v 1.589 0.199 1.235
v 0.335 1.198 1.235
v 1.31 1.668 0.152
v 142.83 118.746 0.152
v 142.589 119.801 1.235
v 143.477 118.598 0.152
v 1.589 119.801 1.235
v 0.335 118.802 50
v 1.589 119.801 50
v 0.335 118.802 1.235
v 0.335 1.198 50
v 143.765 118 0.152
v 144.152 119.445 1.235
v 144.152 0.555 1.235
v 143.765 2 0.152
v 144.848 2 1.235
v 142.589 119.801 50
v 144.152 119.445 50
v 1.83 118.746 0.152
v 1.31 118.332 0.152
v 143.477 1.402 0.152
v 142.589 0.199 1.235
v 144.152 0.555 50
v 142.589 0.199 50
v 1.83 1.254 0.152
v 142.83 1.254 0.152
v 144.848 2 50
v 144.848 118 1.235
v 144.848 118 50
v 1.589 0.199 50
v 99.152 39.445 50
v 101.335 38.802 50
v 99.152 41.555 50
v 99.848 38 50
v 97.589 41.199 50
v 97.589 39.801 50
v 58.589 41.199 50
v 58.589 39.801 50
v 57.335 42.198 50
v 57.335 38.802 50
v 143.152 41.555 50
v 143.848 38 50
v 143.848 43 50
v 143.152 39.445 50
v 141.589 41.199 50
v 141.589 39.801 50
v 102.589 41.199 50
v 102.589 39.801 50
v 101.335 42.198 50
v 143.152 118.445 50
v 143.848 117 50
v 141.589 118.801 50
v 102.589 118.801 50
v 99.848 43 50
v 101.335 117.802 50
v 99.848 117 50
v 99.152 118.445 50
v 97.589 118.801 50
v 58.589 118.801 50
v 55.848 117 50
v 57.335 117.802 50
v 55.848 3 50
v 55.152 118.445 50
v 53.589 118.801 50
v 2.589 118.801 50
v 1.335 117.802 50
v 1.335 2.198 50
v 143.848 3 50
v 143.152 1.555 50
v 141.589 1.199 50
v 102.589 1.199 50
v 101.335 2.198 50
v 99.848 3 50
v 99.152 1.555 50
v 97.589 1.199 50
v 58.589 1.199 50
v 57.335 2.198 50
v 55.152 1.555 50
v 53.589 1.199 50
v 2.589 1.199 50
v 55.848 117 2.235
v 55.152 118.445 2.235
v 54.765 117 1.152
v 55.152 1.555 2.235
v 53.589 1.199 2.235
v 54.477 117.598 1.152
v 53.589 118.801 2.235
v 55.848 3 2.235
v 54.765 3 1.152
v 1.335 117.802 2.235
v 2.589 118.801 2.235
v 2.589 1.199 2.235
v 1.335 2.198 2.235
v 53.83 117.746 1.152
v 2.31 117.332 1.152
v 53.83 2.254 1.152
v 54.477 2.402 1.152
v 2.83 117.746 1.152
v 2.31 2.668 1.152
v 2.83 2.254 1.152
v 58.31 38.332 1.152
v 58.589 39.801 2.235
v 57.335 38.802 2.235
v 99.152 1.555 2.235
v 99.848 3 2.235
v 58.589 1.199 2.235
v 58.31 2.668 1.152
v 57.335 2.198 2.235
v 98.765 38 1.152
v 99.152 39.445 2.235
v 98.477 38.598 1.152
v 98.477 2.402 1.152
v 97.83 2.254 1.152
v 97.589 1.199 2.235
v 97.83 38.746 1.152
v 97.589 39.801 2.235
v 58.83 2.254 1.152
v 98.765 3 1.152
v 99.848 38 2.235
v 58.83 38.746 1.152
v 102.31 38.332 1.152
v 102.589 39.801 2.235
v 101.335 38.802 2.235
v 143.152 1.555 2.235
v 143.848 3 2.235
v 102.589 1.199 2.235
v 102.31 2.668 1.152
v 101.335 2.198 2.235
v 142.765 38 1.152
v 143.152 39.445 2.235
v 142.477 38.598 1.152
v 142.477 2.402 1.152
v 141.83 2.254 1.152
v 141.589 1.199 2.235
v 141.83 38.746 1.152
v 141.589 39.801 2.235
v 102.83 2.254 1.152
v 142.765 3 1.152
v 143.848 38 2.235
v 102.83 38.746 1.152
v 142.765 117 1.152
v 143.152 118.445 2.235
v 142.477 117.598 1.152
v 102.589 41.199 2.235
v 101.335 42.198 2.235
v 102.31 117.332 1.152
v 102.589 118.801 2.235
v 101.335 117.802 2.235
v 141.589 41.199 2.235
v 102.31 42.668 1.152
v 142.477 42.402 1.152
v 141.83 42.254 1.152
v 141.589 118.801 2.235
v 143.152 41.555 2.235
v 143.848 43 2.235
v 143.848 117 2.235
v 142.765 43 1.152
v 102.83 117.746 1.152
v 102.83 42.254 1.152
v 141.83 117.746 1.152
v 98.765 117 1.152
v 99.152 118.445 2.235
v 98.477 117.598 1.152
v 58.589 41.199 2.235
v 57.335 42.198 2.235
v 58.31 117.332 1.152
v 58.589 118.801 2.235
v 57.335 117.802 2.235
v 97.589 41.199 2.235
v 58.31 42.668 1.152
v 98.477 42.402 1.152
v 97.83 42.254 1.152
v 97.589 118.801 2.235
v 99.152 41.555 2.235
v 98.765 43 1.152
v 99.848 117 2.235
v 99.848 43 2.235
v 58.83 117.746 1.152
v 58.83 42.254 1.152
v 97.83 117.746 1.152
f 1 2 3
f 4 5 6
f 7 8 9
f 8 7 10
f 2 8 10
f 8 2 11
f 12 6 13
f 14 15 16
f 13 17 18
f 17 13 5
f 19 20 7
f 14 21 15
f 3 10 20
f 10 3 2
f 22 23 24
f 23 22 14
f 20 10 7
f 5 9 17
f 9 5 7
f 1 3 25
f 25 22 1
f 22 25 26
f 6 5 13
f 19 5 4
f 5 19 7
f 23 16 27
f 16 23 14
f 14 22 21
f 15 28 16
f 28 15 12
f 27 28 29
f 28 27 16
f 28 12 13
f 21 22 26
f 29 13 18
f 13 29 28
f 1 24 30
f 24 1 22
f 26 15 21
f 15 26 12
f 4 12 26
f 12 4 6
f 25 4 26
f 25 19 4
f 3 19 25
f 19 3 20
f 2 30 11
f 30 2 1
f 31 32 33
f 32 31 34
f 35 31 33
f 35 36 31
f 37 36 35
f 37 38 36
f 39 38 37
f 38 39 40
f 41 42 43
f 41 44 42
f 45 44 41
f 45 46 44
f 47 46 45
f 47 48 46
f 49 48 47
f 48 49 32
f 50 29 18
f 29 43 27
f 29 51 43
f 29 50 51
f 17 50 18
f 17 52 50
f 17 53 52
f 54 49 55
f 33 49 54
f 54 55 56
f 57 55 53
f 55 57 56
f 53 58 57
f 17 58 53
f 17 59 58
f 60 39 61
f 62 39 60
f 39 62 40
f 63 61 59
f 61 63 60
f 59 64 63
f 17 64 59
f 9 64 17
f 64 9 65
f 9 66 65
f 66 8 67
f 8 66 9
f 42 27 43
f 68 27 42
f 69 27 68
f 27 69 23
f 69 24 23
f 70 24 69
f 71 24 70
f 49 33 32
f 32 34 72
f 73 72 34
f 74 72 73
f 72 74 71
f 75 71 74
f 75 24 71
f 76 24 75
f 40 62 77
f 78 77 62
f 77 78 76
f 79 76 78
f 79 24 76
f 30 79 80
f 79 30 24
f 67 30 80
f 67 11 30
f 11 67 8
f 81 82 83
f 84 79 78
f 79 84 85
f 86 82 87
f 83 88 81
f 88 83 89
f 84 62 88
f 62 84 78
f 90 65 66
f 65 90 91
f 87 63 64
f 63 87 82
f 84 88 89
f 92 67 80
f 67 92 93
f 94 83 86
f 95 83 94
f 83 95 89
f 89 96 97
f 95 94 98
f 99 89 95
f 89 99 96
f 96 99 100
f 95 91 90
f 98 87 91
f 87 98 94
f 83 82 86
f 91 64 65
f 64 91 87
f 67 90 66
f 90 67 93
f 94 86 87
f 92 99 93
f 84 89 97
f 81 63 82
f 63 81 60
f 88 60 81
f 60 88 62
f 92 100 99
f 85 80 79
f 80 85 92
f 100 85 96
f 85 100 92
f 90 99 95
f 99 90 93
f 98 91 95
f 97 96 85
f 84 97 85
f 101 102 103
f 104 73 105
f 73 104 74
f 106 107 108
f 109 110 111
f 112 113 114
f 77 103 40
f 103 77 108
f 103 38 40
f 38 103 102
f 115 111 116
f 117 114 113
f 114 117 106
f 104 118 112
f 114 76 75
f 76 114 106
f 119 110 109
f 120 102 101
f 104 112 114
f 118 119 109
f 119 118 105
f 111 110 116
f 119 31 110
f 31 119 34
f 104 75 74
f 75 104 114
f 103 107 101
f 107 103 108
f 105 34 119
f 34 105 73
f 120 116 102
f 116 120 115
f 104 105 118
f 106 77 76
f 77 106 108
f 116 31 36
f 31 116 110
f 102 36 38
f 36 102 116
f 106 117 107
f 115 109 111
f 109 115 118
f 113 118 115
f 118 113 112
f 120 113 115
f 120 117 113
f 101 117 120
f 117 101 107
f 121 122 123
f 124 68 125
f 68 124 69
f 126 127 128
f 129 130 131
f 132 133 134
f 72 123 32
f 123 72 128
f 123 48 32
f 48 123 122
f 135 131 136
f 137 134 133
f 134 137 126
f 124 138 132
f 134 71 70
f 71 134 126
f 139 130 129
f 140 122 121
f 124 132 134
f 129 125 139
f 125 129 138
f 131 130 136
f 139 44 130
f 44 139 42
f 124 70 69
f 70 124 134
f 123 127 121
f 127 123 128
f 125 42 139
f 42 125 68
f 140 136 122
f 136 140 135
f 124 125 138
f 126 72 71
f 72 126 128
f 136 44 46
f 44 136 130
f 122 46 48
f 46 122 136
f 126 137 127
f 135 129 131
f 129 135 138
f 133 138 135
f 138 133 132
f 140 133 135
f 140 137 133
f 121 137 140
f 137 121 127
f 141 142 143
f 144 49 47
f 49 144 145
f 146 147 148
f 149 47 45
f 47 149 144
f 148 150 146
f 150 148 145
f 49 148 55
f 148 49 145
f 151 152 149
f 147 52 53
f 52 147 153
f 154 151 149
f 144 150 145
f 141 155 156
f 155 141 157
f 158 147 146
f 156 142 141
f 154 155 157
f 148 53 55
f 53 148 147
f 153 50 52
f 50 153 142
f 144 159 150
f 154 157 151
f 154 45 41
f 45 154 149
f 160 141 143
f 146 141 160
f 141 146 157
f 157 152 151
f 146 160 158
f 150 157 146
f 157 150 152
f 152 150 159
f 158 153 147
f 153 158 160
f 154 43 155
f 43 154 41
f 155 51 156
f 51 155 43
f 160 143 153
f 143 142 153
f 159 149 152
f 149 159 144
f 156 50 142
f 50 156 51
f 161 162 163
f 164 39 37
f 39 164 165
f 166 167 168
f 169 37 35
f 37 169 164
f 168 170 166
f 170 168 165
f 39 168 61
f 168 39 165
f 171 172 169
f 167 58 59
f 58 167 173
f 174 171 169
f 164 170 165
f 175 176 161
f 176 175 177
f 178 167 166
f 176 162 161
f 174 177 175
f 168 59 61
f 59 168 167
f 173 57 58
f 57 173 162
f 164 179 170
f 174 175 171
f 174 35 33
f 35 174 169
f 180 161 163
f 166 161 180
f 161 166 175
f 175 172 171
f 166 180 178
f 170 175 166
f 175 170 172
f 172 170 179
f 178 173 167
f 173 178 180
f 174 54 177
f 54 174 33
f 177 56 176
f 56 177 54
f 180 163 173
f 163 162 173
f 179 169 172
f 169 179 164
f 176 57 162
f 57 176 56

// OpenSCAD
// file: ../utility/round-bottom-box.scad
module spheres(width,length,height,radius) {
  translate([radius,radius,radius]) sphere(radius);
  translate([width-radius, length-radius, radius]) sphere(radius);
  translate([width-radius, radius, radius]) sphere(radius);
  translate([radius, length-radius, radius]) sphere(radius);
}

module slicer(width,length,height) {
  translate([0,0,height]) cube([width, length, height]); 
}

module round_bottom_box(width, length, height,radius) {
  difference() {
    hull() {
      spheres(width,length,height,radius);
      translate([0,0,height]) spheres(width,length,height,radius);
    }
    slicer(width, length, height);
  }
}
// main file
use <../utility/round-bottom-box.scad>

alex_drawer_width = 290;

radius = 2;
width = alex_drawer_width/2;
length = 120;
height = 50;
wall = 1;

// +-------+------+------+
// | large | sm_1 | sm_2 | 
// |       |      |      |
// |       +-------------+
// |       | med  | med  |
// |       |      |      |
// |       |      |      |
// +-------+------+------+

large_width = 55;
large_length = length - 2*wall;

small_1_width = 45 - 2*wall;
small_length = 40 - wall;

medium_1_width = small_1_width;
medium_length = length - 2*wall - small_length - wall;

small_2_width = width - large_width - small_1_width - 4*wall;

medium_2_width = small_2_width;

second_column_x = wall + large_width + wall;
third_column_x = wall + large_width + wall + small_1_width + wall;

second_row_y = wall + small_length + wall;

module box() {
  difference() {
    round_bottom_box(width,length,height,radius);
    large();
    small_1();
    medium_1();
    small_2();
    medium_2();
  }
}

module large() {
  translate([wall, wall ,wall]) 
    round_bottom_box(large_width, large_length, height, radius);
}

module medium_1() {
  translate([second_column_x, second_row_y, wall])
    round_bottom_box(medium_1_width, medium_length, height, radius);
}

module small_1() {
  translate([second_column_x, wall, wall])
    round_bottom_box(small_1_width, small_length, height, radius);
}

module small_2() {
  translate([wall + large_width + wall + small_1_width + wall, wall, wall])
    round_bottom_box(small_1_width, small_length, height, radius);
}

module medium_2() {
  translate([third_column_x, second_row_y, wall])
    round_bottom_box(medium_1_width, medium_length, height, radius);
}

box();
